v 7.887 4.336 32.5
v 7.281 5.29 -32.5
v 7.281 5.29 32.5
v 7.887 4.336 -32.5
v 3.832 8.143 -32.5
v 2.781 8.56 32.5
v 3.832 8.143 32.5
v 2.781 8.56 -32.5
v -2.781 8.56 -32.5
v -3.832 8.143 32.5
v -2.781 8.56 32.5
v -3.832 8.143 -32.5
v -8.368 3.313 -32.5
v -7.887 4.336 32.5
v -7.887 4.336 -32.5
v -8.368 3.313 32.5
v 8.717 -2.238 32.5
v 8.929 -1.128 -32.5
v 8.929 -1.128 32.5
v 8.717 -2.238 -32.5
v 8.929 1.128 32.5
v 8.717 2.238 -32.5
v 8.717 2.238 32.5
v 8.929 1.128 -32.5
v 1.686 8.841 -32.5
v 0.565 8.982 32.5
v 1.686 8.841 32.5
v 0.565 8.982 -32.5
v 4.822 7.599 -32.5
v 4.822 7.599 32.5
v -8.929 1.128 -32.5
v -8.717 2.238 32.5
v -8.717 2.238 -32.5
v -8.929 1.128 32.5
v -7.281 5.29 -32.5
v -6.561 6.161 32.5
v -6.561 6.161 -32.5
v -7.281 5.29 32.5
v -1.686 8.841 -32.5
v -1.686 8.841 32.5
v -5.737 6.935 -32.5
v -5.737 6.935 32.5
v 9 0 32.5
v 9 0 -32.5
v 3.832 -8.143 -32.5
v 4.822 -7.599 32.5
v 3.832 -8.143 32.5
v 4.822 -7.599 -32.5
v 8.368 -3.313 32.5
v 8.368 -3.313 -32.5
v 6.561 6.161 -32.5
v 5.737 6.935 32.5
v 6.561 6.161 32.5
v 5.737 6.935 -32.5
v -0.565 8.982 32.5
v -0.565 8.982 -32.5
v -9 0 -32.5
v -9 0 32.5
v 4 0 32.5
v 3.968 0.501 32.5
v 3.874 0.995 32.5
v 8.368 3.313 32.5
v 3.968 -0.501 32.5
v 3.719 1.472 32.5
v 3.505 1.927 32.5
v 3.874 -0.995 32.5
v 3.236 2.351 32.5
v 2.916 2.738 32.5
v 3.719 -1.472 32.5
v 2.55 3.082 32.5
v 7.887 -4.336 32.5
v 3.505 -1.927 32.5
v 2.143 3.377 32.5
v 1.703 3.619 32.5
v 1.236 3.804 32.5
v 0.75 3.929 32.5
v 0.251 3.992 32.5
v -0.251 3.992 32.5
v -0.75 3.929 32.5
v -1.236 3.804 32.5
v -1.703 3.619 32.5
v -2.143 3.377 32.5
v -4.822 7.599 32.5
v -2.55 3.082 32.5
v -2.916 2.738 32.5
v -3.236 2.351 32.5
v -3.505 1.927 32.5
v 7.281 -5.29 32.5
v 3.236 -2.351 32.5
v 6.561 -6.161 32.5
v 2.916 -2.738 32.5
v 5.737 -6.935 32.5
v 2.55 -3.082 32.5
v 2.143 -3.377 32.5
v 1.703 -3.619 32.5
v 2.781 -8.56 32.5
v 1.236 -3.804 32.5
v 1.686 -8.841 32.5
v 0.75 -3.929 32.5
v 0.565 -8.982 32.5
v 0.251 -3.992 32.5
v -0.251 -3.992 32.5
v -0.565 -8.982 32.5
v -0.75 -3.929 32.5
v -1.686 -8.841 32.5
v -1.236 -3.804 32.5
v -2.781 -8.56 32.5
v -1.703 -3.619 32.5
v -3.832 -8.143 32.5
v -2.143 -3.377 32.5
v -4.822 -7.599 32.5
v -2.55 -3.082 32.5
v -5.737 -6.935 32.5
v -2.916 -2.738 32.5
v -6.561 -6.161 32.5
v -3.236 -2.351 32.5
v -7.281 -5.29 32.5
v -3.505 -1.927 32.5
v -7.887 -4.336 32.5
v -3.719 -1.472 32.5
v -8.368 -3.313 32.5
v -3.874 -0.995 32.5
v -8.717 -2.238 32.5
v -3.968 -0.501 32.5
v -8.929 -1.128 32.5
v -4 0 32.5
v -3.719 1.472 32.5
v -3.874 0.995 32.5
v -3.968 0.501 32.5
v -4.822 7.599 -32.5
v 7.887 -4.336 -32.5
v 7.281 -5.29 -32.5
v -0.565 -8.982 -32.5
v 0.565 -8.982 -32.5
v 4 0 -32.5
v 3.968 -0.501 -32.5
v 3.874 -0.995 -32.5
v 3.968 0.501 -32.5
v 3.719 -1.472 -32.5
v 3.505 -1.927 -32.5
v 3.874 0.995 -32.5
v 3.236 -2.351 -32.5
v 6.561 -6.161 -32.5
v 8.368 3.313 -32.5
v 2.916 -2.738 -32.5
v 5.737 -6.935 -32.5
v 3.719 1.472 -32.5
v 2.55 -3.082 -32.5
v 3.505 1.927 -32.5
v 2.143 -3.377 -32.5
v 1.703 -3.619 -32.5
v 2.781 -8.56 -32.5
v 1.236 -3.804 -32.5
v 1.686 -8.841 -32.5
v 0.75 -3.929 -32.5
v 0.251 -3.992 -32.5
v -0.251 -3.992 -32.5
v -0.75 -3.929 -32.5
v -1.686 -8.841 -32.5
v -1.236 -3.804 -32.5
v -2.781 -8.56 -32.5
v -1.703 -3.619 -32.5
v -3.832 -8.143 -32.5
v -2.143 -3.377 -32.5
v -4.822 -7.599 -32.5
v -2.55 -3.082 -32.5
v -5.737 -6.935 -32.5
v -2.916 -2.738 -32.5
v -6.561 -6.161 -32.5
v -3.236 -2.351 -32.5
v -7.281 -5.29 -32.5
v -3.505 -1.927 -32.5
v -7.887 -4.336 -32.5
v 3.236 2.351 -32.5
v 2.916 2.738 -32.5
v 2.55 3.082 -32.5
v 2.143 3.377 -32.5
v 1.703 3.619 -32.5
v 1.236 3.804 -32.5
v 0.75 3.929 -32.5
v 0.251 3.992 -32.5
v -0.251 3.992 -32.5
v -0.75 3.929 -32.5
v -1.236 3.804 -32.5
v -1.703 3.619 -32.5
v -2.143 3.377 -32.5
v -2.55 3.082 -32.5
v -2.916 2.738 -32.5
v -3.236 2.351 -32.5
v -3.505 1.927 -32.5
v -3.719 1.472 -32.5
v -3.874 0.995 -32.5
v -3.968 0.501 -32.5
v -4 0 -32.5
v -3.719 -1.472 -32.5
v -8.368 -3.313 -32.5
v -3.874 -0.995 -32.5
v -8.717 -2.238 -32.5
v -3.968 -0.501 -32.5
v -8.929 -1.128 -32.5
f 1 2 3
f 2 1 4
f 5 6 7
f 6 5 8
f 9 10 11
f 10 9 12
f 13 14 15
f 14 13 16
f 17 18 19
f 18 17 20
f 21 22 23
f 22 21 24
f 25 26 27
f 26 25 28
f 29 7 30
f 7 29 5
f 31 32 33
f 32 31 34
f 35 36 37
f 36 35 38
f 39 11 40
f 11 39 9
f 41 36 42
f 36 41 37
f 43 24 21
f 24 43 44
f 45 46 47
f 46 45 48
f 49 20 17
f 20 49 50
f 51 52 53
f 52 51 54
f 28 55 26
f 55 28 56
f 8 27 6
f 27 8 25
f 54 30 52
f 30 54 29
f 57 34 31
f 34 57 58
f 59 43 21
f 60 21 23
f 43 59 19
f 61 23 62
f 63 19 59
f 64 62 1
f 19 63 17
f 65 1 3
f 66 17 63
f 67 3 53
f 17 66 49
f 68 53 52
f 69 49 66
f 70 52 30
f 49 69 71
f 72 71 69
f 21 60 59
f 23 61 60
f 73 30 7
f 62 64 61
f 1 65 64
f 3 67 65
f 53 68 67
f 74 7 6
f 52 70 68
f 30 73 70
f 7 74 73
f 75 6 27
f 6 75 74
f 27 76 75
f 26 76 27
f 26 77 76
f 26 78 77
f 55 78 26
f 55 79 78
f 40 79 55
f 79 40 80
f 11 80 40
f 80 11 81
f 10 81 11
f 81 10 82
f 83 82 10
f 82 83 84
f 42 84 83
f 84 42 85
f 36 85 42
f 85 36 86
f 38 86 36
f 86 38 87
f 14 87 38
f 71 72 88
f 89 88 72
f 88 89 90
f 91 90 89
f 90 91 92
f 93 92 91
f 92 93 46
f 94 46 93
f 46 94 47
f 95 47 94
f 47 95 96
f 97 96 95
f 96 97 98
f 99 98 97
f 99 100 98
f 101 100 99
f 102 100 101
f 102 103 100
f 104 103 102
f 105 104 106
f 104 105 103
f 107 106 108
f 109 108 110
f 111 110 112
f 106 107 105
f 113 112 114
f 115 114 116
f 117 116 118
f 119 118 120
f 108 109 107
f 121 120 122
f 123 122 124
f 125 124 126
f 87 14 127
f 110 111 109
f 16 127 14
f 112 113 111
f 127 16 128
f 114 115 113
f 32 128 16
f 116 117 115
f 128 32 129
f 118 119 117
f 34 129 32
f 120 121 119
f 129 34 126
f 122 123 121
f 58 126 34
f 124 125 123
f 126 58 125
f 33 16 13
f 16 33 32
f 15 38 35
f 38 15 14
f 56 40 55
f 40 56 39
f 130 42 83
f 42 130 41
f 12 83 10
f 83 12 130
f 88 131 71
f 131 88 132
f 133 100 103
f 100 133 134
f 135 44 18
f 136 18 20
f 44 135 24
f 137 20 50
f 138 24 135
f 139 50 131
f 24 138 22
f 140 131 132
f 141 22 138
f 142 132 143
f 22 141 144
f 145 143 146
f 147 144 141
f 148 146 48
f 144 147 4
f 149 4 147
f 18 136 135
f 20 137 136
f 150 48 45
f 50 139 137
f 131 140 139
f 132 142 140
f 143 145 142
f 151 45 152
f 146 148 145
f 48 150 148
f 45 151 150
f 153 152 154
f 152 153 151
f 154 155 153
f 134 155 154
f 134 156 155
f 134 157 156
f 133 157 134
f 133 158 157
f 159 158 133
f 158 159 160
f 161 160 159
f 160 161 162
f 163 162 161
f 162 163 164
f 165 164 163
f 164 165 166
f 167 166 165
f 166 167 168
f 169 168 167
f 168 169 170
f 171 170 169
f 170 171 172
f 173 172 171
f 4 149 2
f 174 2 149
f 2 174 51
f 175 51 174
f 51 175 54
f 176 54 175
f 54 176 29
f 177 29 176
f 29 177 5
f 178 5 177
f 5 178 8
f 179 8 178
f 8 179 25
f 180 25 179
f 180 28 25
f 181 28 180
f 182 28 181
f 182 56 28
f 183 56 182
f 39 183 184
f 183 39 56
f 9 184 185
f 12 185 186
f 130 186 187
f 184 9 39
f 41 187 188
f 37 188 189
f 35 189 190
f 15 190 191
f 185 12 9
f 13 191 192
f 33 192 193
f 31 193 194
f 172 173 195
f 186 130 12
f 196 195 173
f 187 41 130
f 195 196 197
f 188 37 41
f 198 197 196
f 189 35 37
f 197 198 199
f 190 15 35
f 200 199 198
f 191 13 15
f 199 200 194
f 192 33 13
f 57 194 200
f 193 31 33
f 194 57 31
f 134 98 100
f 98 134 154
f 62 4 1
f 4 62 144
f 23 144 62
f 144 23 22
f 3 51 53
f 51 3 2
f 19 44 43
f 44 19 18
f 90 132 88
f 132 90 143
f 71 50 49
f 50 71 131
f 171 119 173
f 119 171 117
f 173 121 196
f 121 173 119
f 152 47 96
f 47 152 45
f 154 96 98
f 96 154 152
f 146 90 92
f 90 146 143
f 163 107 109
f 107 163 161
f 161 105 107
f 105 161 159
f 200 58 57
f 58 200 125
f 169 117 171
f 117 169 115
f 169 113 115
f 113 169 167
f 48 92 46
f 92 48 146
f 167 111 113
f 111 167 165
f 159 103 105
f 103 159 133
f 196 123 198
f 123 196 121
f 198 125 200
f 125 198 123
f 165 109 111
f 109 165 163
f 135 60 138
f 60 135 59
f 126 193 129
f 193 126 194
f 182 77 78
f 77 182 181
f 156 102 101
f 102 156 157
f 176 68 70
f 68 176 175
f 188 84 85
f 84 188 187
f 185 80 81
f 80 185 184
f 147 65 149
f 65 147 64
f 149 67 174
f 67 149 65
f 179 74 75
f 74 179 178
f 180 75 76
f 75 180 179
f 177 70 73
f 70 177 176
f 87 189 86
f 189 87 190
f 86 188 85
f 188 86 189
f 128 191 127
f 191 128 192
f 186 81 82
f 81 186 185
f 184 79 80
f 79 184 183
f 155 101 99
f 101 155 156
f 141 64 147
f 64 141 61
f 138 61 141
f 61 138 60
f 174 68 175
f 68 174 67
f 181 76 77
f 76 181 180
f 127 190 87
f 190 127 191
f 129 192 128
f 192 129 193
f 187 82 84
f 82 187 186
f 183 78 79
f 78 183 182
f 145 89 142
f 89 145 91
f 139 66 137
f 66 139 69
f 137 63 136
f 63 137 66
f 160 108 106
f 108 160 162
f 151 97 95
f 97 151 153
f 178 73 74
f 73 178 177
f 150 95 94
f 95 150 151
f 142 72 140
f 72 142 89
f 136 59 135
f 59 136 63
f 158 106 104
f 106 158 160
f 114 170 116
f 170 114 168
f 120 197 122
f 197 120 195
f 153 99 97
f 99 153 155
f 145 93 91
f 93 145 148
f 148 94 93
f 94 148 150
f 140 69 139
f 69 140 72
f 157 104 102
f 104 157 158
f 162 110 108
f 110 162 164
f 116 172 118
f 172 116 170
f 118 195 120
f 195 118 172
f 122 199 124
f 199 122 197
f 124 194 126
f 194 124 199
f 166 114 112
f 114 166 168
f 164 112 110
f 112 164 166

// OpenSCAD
$fn = 50;


difference() {
	union() {
		translate(v = [0, 0, -32.5000000000]) {
			cylinder(h = 65, r = 9.0000000000);
		}
	}
	union() {
		translate(v = [0, 0, -100.0000000000]) {
			cylinder(h = 200, r = 4.0000000000);
		}
	}
}
